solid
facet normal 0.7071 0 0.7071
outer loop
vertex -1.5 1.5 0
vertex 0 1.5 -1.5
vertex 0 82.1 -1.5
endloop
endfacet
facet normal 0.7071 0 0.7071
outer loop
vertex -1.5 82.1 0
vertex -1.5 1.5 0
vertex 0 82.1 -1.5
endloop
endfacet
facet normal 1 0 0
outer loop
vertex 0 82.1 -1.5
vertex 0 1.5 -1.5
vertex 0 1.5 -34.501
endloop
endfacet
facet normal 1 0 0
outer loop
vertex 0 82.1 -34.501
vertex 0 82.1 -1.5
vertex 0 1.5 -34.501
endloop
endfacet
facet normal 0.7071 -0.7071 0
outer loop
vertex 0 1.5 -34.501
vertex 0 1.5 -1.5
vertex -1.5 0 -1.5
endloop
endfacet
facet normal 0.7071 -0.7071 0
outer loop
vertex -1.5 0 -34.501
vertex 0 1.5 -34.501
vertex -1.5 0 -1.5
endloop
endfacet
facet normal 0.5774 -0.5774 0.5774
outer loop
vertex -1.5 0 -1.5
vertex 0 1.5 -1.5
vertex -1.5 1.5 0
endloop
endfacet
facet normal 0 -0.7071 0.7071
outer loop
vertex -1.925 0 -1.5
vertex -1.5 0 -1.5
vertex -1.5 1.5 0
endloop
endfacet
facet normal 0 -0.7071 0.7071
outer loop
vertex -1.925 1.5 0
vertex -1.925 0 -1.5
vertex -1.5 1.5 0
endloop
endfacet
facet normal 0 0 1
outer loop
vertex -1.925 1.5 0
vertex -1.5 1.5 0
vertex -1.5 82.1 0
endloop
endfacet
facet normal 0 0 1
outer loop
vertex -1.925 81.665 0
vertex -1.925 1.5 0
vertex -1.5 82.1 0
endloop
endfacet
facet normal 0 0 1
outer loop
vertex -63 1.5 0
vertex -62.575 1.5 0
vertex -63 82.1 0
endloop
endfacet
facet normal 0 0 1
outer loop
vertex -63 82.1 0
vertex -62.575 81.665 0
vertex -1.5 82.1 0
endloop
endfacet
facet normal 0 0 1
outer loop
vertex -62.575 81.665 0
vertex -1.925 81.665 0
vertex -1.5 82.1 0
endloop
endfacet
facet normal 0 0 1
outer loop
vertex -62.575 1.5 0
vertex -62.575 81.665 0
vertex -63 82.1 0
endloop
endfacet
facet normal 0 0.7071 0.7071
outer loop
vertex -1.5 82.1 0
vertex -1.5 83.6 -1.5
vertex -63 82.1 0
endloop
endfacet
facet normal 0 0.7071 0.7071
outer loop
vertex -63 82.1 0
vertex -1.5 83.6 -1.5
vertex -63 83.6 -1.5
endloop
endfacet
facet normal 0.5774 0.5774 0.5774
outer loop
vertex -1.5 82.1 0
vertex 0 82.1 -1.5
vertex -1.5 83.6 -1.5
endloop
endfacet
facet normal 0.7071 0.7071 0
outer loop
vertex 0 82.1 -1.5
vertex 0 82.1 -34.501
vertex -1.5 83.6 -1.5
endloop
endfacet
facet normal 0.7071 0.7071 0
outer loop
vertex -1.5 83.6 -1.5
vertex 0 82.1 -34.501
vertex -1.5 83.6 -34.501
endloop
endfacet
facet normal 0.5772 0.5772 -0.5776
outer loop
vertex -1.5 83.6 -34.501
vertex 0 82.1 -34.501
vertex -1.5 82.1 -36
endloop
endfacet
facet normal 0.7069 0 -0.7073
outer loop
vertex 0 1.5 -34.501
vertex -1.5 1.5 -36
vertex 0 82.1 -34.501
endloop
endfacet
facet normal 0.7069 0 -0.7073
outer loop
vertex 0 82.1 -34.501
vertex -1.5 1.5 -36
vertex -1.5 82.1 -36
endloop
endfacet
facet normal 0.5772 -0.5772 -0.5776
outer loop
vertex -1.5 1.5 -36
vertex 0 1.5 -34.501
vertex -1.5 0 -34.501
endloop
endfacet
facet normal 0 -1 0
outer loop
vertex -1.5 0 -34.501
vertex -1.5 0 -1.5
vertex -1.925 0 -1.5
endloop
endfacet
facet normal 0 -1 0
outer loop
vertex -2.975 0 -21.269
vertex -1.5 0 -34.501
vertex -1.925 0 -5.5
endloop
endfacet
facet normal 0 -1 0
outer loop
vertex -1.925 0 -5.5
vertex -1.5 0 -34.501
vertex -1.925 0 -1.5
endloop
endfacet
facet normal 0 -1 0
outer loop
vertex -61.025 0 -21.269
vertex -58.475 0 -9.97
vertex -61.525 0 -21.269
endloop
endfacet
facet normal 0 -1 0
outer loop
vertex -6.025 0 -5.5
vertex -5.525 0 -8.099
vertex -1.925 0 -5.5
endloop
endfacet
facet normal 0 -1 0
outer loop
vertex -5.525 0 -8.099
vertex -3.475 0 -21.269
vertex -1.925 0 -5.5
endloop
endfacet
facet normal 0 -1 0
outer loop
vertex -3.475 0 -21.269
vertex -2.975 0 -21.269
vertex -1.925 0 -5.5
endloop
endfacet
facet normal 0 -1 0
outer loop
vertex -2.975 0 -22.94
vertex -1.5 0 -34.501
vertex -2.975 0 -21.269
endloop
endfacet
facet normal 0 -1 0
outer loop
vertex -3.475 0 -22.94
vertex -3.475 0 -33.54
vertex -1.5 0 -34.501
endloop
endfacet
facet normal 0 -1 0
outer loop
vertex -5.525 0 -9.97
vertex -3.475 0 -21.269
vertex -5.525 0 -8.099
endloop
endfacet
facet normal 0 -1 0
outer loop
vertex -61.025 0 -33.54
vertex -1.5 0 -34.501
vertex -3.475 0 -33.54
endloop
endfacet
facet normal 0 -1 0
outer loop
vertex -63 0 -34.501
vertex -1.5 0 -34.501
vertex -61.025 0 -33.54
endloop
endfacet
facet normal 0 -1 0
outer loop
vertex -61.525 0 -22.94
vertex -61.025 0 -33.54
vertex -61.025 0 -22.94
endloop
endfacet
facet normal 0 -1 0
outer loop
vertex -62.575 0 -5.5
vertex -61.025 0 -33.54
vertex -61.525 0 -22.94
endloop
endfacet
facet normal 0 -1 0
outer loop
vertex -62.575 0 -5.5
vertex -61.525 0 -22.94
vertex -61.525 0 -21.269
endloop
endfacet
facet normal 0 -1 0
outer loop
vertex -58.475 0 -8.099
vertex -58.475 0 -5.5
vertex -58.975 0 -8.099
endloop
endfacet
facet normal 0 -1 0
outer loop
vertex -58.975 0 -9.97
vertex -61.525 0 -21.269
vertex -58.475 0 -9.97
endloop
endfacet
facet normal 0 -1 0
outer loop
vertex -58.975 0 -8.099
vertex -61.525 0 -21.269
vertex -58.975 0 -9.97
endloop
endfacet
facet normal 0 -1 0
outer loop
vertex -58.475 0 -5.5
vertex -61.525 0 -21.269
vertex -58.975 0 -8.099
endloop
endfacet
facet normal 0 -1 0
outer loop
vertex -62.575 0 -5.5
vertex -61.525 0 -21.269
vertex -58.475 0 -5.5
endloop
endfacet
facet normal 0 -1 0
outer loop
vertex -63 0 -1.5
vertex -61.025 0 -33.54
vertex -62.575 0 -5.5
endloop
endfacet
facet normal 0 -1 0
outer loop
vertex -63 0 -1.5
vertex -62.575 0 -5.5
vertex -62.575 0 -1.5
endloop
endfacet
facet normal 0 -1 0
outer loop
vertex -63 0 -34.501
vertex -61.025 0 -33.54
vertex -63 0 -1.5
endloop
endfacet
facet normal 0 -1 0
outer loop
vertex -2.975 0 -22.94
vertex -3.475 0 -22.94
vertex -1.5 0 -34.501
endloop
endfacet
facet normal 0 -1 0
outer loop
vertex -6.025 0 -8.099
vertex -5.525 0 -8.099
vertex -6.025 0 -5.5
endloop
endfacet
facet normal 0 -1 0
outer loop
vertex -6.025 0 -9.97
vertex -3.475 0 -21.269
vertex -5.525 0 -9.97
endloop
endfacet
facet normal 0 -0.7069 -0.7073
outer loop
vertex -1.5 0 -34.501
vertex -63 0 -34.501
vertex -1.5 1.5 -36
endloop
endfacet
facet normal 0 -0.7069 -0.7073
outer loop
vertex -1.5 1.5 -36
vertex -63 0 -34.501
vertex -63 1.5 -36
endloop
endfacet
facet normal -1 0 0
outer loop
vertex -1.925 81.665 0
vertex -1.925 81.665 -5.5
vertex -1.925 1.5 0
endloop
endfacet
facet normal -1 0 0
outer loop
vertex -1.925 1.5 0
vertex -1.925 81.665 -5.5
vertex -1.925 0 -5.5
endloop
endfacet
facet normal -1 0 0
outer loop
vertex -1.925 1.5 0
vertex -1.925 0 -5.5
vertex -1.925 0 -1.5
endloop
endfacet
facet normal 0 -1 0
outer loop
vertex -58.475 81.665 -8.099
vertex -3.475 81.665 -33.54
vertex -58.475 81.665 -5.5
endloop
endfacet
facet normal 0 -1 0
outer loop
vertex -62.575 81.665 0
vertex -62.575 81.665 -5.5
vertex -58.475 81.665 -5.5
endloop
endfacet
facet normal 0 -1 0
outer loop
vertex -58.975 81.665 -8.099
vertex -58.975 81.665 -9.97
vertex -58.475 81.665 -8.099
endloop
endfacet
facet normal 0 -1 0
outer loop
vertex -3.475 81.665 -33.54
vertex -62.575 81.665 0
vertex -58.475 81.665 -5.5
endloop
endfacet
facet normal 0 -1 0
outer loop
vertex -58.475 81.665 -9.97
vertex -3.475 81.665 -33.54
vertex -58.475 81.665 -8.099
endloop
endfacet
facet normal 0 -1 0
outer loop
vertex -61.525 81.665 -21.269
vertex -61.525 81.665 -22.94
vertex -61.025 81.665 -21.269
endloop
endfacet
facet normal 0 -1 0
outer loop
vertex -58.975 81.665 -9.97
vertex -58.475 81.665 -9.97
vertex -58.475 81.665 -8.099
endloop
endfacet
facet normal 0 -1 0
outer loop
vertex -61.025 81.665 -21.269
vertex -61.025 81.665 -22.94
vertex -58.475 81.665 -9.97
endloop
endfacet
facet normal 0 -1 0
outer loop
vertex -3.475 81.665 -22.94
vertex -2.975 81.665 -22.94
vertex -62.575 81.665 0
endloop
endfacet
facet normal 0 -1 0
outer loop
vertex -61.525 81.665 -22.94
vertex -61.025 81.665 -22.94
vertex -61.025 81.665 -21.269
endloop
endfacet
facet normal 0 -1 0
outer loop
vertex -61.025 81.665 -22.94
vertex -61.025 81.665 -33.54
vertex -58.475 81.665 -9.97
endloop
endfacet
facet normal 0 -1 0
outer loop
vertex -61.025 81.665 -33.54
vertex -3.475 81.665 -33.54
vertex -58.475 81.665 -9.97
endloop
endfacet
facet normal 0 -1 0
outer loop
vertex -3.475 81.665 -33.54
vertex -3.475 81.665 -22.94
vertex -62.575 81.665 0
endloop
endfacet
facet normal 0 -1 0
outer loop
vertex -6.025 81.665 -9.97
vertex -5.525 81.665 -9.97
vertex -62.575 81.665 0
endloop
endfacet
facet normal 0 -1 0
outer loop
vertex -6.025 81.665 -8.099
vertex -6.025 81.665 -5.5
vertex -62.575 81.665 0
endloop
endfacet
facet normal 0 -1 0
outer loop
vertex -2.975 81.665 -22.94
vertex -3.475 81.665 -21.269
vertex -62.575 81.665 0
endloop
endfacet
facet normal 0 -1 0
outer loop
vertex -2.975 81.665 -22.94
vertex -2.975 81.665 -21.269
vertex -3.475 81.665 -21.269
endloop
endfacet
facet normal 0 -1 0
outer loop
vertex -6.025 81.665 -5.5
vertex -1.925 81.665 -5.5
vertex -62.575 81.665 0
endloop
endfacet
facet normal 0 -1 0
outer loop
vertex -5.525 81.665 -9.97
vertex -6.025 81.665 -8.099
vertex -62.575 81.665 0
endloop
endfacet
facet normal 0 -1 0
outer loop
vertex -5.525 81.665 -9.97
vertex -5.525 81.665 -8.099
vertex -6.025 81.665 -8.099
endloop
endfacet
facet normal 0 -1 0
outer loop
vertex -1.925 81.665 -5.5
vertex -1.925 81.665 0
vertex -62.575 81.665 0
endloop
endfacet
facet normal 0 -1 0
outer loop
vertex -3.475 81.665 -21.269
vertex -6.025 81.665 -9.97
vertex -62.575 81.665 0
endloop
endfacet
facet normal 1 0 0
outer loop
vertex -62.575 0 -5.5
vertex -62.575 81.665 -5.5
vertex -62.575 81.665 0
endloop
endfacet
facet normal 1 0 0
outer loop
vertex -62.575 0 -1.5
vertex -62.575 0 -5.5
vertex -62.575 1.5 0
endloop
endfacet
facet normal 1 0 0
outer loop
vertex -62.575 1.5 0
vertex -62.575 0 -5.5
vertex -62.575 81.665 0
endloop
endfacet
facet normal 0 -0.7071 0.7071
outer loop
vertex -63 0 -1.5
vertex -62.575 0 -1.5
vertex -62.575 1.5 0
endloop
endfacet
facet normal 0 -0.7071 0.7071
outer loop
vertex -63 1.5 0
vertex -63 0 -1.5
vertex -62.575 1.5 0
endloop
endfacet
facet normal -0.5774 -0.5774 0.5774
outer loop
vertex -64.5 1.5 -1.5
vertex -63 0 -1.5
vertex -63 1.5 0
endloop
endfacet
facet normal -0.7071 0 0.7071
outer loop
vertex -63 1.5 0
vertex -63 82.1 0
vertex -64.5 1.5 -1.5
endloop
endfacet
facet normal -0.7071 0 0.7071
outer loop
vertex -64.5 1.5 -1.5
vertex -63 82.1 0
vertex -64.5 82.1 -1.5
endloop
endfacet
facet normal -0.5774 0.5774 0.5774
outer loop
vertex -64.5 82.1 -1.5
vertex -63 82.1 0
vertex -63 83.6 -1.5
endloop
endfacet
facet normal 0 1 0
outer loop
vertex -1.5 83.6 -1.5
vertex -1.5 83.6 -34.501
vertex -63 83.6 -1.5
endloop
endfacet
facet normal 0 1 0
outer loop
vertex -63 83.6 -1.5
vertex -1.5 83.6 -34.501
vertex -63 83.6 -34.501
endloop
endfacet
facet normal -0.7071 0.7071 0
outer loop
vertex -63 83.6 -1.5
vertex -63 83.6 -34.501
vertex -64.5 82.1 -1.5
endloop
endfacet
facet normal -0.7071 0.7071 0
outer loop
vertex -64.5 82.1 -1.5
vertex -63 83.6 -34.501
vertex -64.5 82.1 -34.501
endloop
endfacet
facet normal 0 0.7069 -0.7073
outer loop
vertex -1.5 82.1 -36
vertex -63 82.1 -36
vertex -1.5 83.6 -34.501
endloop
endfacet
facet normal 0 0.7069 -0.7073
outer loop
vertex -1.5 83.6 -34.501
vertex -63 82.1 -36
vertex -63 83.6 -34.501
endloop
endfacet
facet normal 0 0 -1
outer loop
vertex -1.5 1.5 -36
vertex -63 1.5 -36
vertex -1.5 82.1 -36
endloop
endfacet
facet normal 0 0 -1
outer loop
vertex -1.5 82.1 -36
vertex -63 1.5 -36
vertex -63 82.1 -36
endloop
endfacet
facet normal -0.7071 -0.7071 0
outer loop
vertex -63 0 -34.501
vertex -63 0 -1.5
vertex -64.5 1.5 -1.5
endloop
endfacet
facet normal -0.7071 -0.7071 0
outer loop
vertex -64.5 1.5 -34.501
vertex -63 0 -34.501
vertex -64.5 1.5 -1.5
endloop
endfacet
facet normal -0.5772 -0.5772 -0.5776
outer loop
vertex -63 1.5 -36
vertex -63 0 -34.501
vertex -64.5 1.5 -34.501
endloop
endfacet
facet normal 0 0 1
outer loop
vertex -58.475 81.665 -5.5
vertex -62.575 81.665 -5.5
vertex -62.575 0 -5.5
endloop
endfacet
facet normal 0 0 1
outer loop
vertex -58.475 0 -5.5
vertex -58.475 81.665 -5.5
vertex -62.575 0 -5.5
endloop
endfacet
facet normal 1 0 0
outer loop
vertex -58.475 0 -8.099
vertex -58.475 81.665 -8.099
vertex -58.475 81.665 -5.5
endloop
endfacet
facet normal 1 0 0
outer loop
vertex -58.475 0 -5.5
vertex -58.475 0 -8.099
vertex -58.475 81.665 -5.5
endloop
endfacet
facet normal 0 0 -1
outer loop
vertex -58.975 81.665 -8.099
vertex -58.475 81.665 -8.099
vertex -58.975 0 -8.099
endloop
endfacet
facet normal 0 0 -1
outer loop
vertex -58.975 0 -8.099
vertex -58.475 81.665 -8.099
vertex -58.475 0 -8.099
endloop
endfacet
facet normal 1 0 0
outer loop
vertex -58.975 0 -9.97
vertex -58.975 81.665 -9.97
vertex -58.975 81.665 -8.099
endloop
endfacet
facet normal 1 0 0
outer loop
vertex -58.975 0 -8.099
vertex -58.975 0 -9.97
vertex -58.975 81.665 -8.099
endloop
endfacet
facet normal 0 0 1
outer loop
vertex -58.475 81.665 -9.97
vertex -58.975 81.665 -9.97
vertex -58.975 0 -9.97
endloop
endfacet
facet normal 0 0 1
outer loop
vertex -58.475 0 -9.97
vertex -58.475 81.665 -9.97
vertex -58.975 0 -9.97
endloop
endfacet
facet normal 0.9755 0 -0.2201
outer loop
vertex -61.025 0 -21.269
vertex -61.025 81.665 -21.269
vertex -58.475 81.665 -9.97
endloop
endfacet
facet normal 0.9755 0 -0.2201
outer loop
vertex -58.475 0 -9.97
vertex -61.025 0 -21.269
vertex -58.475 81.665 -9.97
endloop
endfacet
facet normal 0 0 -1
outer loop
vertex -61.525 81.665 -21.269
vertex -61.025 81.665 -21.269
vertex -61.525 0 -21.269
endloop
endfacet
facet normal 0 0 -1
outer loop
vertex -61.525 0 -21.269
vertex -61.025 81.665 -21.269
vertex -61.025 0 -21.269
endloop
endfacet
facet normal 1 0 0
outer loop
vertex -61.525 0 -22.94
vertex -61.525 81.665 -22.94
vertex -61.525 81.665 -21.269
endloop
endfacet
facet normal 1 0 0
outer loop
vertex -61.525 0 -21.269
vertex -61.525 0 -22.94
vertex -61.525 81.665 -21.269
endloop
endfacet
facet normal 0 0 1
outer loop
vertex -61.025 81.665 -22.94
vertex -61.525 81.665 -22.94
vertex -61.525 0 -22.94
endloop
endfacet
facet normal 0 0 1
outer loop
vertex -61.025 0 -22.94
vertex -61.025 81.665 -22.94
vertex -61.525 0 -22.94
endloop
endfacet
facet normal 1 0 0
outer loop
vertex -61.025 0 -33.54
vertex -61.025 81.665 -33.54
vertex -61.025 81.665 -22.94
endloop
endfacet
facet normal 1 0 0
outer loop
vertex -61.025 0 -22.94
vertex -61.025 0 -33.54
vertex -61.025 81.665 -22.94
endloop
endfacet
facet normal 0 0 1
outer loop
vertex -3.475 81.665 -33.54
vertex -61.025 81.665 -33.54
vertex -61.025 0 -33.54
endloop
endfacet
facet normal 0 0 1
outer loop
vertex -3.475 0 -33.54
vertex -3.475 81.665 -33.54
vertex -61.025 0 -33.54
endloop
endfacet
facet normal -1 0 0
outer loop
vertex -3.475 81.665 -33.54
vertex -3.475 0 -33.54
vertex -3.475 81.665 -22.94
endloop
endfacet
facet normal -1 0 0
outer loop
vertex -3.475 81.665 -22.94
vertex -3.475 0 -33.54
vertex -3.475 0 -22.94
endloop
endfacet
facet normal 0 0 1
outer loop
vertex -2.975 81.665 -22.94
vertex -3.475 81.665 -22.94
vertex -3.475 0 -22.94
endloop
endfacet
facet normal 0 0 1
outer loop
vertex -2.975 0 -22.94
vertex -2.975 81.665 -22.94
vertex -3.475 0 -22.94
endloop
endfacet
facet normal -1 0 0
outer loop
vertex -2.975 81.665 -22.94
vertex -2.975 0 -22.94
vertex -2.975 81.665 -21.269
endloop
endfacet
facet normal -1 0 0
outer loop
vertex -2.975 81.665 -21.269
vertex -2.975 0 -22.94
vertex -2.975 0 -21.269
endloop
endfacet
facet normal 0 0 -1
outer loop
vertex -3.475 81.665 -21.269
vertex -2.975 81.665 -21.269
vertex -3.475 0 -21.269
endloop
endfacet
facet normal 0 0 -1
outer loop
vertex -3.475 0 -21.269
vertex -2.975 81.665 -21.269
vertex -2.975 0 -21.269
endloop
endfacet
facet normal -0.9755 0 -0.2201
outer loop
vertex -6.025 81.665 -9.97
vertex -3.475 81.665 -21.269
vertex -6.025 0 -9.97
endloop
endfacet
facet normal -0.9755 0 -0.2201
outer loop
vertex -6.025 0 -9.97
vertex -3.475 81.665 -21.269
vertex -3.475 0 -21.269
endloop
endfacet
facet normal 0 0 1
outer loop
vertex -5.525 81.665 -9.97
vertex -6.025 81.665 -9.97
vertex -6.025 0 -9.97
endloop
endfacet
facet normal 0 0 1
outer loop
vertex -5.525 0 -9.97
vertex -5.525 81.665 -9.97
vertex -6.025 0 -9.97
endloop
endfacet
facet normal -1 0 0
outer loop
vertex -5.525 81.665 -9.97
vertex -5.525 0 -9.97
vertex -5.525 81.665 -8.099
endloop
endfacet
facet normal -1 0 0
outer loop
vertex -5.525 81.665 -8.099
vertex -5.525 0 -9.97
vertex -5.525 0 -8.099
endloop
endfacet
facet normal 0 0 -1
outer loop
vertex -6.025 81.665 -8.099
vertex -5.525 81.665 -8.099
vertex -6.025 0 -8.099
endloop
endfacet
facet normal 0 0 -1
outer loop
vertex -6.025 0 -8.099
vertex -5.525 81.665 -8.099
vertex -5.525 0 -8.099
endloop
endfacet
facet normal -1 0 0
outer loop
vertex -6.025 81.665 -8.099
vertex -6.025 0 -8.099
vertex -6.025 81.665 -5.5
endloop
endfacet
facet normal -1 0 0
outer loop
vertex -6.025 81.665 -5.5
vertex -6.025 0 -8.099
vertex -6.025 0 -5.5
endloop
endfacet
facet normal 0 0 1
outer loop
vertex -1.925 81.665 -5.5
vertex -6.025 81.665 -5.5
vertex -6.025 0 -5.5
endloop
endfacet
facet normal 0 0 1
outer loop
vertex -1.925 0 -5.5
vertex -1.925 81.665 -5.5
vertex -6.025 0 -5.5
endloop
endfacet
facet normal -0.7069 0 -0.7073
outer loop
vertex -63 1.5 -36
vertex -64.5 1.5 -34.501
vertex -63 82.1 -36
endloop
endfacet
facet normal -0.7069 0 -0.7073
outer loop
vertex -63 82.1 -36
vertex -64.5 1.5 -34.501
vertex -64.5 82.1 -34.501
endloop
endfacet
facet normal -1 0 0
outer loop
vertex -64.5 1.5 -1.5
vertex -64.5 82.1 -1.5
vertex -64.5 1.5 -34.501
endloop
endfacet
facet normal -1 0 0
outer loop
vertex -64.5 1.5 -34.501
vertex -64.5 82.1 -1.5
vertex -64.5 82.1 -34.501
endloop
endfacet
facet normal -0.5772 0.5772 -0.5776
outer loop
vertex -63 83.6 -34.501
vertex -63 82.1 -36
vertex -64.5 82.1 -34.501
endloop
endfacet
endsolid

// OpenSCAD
// file: scad/tapercube.scad
module tapercube(width=10, height=10, depth=10, taper=3.0) {
  plane = 0.001;
  hull() {
    translate([taper/2,taper/2,0])
      cube([width-taper, height-taper, plane]);
    translate([0,0,taper/2]) {
      translate([0,taper/2])
        cube([width, height-taper, plane]);
      translate([taper/2,0])
        cube([width-taper, height, plane]);
    }

    translate([taper/2,taper/2,depth-plane])
      cube([width-taper, height-taper, plane]);
    translate([0,0,depth-taper/2]) {
      translate([0,taper/2])
        cube([width, height-taper, plane]);
      translate([taper/2,0])
        cube([width-taper, height, plane]);
    }
  }
}

module cornerless_cube(width=10, height=10, depth=10, taper=3.0) {
  plane = 0.001;
  hull() {
    translate([0,taper/2])
      cube([width, height-taper, plane]);
    translate([taper/2,0])
      cube([width-taper, height, plane]);

    translate([0,0,depth]) {
      translate([0,taper/2])
        cube([width, height-taper, plane]);
      translate([taper/2,0])
        cube([width-taper, height, plane]);
    }
  }
}
// main file
include <scad/tapercube.scad>;

fudge = 0.15;

module grbl_shield_shell() {
  battery_inner_width = 60.5 + fudge;
  battery_outer_width = 64.5;

  battery_ridge_depth = 5.5;
  battery_ridge_thickness = (battery_outer_width - battery_inner_width)/2;

  arduino_board_thickness = 1.72 + fudge;
  arduino_board_width = 53.3 + fudge;
  arduino_width = arduino_board_width - 1.0;

  grbl_shield_thickness = 1.52 + fudge;
  grbl_shield_width = 58.4 + fudge;
  grbl_width = grbl_shield_width - 1.0;
  grbl_depth = 10.6;

  solder_thickness = 2.6;

  arduino_grbl_distance = 11.3;

  maximum_extent_height = 83.6;
  maximum_extent_depth = 36.0;

  main_height = maximum_extent_height - battery_ridge_thickness;
  main_y = -0.01;

  wafer = 0.001;

  difference() {
    // cube([battery_outer_width, maximum_extent_height, maximum_extent_depth]);
    tapercube(battery_outer_width, maximum_extent_height, maximum_extent_depth);

    translate([battery_ridge_thickness, main_y, -wafer])
      cube([battery_inner_width, main_height, battery_ridge_depth + wafer]);

    translate([battery_outer_width/2 - arduino_width/2, main_y, battery_ridge_depth - wafer])
      cube([arduino_width, main_height, solder_thickness + wafer]);

    translate([battery_outer_width/2 - arduino_board_width/2, main_y, battery_ridge_depth + solder_thickness - wafer])
      cube([arduino_board_width, main_height, arduino_board_thickness + wafer]);

    translate([0, main_y, battery_ridge_depth + solder_thickness + arduino_board_thickness - wafer]) {
      // cube([arduino_width, main_height, arduino_grbl_distance + wafer]);
      hull() {
        translate([battery_outer_width/2 - arduino_width/2, 0, 0])
          cube([arduino_width, main_height, wafer]);
        translate([battery_outer_width/2 - grbl_width/2, 0, arduino_grbl_distance])
          cube([grbl_width, main_height, wafer]);
      }
    }

    translate([battery_outer_width/2 - grbl_shield_width/2, main_y, battery_ridge_depth + solder_thickness + arduino_board_thickness + arduino_grbl_distance - wafer])
      cube([grbl_shield_width, main_height, grbl_shield_thickness + wafer]);

    translate([battery_outer_width/2 - grbl_width/2, main_y, battery_ridge_depth + solder_thickness + arduino_board_thickness + arduino_grbl_distance + grbl_shield_thickness - wafer])
      cube([grbl_width, main_height, grbl_depth + wafer]);
  }
}

rotate([0, 180, 0])
grbl_shield_shell();
